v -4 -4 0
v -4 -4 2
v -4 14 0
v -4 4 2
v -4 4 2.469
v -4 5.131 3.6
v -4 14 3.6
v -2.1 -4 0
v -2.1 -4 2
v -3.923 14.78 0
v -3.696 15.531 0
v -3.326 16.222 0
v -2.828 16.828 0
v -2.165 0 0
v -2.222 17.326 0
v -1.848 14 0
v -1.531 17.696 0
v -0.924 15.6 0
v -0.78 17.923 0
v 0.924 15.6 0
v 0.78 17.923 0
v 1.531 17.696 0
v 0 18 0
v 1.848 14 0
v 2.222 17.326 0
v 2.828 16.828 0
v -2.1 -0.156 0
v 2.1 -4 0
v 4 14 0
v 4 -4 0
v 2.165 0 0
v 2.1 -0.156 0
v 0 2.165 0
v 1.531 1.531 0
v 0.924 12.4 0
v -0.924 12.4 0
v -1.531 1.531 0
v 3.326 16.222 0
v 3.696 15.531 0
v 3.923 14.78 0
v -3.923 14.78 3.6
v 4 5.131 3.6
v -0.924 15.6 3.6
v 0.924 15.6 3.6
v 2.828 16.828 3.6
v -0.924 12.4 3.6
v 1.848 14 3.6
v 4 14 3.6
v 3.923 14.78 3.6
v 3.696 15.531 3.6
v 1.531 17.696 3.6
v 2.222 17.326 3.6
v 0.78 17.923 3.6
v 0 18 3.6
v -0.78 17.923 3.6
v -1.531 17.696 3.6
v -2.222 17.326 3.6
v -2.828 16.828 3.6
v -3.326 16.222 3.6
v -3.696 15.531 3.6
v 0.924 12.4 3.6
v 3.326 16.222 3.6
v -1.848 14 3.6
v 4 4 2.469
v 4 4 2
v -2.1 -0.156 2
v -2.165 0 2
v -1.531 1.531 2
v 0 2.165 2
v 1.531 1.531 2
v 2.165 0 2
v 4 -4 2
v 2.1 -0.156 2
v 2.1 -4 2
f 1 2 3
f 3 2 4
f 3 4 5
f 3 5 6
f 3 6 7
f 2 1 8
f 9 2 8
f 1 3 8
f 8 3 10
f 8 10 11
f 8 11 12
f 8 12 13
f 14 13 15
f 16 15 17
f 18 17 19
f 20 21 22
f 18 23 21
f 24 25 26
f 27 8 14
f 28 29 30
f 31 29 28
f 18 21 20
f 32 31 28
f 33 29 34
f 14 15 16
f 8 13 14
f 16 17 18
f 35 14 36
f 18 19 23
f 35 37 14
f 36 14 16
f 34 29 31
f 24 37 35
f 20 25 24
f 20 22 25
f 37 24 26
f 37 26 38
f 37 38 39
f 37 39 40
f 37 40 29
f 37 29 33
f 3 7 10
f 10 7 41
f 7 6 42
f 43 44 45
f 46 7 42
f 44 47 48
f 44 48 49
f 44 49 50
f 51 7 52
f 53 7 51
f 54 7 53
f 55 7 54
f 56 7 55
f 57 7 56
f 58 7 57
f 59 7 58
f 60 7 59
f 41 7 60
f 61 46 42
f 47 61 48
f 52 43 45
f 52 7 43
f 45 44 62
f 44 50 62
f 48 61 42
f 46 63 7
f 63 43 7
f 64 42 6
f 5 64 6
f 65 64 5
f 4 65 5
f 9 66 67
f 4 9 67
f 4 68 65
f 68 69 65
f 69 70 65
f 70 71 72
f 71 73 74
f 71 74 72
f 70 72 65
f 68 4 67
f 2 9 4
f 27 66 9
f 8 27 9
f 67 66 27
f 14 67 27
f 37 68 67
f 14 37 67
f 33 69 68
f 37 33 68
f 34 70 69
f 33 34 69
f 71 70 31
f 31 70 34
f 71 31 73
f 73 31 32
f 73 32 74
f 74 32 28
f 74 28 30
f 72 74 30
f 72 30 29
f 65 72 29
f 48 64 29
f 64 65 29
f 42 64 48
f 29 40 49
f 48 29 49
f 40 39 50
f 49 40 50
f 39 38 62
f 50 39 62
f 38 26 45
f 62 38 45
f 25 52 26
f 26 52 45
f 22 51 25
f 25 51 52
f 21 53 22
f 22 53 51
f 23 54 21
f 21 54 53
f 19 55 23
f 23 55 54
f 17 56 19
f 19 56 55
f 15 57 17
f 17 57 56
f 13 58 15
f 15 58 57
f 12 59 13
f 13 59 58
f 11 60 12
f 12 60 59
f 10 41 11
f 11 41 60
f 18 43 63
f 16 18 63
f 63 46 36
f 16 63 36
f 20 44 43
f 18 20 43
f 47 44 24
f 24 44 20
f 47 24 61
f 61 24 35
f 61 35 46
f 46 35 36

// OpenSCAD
// file: functions.scad
// PRUSA Mendel  
// Functions used in many files
// GNU GPL v3
// Josef Průša
// josefprusa@me.com
// prusadjs.cz
// http://www.reprap.org/wiki/Prusa_Mendel
// http://github.com/prusajr/PrusaMendel


module nut(d,h,horizontal=true){
cornerdiameter =  (d / 2) / cos (180 / 6);
cylinder(h = h, r = cornerdiameter, $fn = 6);
if(horizontal){
for(i = [1:6]){
	rotate([0,0,60*i]) translate([-cornerdiameter-0.2,0,0]) rotate([0,0,-45]) cube(size = [2,2,h]);
}}
}

// Based on nophead research
module polyhole(d,h) {
    n = max(round(2 * d),3);
    rotate([0,0,180])
        cylinder(h = h, r = (d / 2) / cos (180 / n), $fn = n);
}




module roundcorner(diameter){
	difference(){
		cube(size = [diameter,diameter,99], center = false);
		translate(v = [diameter, diameter, 0]) cylinder(h = 100, r=diameter, center=false,$fn = max(3*diameter,20));
	}
}
// file: configuration.scad
// PRUSA Mendel  
// Configuration file
// GNU GPL v2
// Josef Pra
// josefprusa@me.com
// prusadjs.cz
// http://www.reprap.org/wiki/Prusa_Mendel
// http://github.com/prusajr/PrusaMendel


// PLEASE SELECT ONE OF THE CONFIGURATIONS BELOW
// BY UN-COMMENTING IT


variant=0; //0 for metric
//variant=1; //1 for SAE
if(variant==0){
echo("variant: metric");
}else if(variant==1){
echo("variant: sae");
} else{
echo("WARNING: INVALID CONFIGURATION");
}




vars=[
//[m8_dia,m8_nut, m4_dia, m4_nut, m3_dia, m3_nut, bush_dia, mot_shaft, bush_rod, bush_outerdia, bush_length, m5_dia, m5_nut]
[9, 16.4, 5,9, 4.4, 7, 11, 5.3, 8, 16, 11, 5.6, 10],//metric
[9,15.7,5.5,10.6,5.5,10.6,11.5,5.3,7.9375,16,11,5.6, 10]//SAE
];


//BUSHING TYPE Can generate three versions
// 1 - regular old ones
// 2 - helical ones
// 3 - holders for brass or any other bought bushings
bushing_type = 2;


//Round corner diameter
round_corner_diameter = 8;


//Thin wall size
layer_height = 0.4;
perimeter_width_over_thicknes = 1.6;
infill_widht_over_thickness = 1.55;
thin_wall = 2*(perimeter_width_over_thicknes*layer_height+infill_widht_over_thickness*layer_height);
if(thin_wall<2){
	echo("Check thin wall size, its below 2mm!");
}
echo(thin_wall);


//DO NOT TOUCH THIS SECTION!
m8_diameter = vars[variant][0];
m8_nut_diameter = vars[variant][1];
m4_diameter = vars[variant][2];
m4_nut_diameter = vars[variant][3];
m3_diameter = vars[variant][4];
m3_nut_diameter = vars[variant][5];
bushing_diameter = vars[variant][6];
motor_shaft=vars[variant][7];
bushing_rodsize = vars[variant][8];
bushing_outerDiameter = vars[variant][9];
bushing_lenght = vars[variant][10];
m5_diameter = vars[variant][11];
m5_nut_diameter = vars[variant][12];



// MINI-HUXLEY VERSION (TODO, just place holder)
// include <configuration-huxley.scad>


// MEGA VERSION (TODO, just place holder)
// include <configuration-mega.scad>

// Gap between the X rods

x_rod_centres=70;


// Some basic functions, probably should be somewhere else
module roundcorner(diameter){
	difference(){
		cube(size = [diameter,diameter,99], center = false);
		translate(v = [diameter, diameter, 0]) cylinder(h = 100, r=diameter, center=true);
	}
}

include <functions.scad>
// main file
include <configuration.scad>
partthick=3.6;
partlength=18;
hole_size=4;
gap_adjust=0.2;

tongue();

module tongue(){
difference(){
	union(){
		translate([-hole_size,-hole_size,0]) cube([8,partlength,partthick]);
		translate([0,partlength-hole_size,0]) cylinder(h=partthick,r=8/2, $fn=32);
	}
	polyhole(h=partthick, d=hole_size);
	translate([0,-hole_size/2,partthick/2]) cube([hole_size+gap_adjust,hole_size,partthick*1.01], center=true);
	translate([0,partlength-hole_size,0]) polyhole(h=partthick,d=hole_size*0.8);
	translate([0,-hole_size/2,2+partthick/2]) cube([8.2,3*hole_size,partthick], center=true);
	#translate([0,hole_size,partthick]) rotate([45,0,0]) cube([10,partthick-2,partthick-2],center=true); 
}
}
